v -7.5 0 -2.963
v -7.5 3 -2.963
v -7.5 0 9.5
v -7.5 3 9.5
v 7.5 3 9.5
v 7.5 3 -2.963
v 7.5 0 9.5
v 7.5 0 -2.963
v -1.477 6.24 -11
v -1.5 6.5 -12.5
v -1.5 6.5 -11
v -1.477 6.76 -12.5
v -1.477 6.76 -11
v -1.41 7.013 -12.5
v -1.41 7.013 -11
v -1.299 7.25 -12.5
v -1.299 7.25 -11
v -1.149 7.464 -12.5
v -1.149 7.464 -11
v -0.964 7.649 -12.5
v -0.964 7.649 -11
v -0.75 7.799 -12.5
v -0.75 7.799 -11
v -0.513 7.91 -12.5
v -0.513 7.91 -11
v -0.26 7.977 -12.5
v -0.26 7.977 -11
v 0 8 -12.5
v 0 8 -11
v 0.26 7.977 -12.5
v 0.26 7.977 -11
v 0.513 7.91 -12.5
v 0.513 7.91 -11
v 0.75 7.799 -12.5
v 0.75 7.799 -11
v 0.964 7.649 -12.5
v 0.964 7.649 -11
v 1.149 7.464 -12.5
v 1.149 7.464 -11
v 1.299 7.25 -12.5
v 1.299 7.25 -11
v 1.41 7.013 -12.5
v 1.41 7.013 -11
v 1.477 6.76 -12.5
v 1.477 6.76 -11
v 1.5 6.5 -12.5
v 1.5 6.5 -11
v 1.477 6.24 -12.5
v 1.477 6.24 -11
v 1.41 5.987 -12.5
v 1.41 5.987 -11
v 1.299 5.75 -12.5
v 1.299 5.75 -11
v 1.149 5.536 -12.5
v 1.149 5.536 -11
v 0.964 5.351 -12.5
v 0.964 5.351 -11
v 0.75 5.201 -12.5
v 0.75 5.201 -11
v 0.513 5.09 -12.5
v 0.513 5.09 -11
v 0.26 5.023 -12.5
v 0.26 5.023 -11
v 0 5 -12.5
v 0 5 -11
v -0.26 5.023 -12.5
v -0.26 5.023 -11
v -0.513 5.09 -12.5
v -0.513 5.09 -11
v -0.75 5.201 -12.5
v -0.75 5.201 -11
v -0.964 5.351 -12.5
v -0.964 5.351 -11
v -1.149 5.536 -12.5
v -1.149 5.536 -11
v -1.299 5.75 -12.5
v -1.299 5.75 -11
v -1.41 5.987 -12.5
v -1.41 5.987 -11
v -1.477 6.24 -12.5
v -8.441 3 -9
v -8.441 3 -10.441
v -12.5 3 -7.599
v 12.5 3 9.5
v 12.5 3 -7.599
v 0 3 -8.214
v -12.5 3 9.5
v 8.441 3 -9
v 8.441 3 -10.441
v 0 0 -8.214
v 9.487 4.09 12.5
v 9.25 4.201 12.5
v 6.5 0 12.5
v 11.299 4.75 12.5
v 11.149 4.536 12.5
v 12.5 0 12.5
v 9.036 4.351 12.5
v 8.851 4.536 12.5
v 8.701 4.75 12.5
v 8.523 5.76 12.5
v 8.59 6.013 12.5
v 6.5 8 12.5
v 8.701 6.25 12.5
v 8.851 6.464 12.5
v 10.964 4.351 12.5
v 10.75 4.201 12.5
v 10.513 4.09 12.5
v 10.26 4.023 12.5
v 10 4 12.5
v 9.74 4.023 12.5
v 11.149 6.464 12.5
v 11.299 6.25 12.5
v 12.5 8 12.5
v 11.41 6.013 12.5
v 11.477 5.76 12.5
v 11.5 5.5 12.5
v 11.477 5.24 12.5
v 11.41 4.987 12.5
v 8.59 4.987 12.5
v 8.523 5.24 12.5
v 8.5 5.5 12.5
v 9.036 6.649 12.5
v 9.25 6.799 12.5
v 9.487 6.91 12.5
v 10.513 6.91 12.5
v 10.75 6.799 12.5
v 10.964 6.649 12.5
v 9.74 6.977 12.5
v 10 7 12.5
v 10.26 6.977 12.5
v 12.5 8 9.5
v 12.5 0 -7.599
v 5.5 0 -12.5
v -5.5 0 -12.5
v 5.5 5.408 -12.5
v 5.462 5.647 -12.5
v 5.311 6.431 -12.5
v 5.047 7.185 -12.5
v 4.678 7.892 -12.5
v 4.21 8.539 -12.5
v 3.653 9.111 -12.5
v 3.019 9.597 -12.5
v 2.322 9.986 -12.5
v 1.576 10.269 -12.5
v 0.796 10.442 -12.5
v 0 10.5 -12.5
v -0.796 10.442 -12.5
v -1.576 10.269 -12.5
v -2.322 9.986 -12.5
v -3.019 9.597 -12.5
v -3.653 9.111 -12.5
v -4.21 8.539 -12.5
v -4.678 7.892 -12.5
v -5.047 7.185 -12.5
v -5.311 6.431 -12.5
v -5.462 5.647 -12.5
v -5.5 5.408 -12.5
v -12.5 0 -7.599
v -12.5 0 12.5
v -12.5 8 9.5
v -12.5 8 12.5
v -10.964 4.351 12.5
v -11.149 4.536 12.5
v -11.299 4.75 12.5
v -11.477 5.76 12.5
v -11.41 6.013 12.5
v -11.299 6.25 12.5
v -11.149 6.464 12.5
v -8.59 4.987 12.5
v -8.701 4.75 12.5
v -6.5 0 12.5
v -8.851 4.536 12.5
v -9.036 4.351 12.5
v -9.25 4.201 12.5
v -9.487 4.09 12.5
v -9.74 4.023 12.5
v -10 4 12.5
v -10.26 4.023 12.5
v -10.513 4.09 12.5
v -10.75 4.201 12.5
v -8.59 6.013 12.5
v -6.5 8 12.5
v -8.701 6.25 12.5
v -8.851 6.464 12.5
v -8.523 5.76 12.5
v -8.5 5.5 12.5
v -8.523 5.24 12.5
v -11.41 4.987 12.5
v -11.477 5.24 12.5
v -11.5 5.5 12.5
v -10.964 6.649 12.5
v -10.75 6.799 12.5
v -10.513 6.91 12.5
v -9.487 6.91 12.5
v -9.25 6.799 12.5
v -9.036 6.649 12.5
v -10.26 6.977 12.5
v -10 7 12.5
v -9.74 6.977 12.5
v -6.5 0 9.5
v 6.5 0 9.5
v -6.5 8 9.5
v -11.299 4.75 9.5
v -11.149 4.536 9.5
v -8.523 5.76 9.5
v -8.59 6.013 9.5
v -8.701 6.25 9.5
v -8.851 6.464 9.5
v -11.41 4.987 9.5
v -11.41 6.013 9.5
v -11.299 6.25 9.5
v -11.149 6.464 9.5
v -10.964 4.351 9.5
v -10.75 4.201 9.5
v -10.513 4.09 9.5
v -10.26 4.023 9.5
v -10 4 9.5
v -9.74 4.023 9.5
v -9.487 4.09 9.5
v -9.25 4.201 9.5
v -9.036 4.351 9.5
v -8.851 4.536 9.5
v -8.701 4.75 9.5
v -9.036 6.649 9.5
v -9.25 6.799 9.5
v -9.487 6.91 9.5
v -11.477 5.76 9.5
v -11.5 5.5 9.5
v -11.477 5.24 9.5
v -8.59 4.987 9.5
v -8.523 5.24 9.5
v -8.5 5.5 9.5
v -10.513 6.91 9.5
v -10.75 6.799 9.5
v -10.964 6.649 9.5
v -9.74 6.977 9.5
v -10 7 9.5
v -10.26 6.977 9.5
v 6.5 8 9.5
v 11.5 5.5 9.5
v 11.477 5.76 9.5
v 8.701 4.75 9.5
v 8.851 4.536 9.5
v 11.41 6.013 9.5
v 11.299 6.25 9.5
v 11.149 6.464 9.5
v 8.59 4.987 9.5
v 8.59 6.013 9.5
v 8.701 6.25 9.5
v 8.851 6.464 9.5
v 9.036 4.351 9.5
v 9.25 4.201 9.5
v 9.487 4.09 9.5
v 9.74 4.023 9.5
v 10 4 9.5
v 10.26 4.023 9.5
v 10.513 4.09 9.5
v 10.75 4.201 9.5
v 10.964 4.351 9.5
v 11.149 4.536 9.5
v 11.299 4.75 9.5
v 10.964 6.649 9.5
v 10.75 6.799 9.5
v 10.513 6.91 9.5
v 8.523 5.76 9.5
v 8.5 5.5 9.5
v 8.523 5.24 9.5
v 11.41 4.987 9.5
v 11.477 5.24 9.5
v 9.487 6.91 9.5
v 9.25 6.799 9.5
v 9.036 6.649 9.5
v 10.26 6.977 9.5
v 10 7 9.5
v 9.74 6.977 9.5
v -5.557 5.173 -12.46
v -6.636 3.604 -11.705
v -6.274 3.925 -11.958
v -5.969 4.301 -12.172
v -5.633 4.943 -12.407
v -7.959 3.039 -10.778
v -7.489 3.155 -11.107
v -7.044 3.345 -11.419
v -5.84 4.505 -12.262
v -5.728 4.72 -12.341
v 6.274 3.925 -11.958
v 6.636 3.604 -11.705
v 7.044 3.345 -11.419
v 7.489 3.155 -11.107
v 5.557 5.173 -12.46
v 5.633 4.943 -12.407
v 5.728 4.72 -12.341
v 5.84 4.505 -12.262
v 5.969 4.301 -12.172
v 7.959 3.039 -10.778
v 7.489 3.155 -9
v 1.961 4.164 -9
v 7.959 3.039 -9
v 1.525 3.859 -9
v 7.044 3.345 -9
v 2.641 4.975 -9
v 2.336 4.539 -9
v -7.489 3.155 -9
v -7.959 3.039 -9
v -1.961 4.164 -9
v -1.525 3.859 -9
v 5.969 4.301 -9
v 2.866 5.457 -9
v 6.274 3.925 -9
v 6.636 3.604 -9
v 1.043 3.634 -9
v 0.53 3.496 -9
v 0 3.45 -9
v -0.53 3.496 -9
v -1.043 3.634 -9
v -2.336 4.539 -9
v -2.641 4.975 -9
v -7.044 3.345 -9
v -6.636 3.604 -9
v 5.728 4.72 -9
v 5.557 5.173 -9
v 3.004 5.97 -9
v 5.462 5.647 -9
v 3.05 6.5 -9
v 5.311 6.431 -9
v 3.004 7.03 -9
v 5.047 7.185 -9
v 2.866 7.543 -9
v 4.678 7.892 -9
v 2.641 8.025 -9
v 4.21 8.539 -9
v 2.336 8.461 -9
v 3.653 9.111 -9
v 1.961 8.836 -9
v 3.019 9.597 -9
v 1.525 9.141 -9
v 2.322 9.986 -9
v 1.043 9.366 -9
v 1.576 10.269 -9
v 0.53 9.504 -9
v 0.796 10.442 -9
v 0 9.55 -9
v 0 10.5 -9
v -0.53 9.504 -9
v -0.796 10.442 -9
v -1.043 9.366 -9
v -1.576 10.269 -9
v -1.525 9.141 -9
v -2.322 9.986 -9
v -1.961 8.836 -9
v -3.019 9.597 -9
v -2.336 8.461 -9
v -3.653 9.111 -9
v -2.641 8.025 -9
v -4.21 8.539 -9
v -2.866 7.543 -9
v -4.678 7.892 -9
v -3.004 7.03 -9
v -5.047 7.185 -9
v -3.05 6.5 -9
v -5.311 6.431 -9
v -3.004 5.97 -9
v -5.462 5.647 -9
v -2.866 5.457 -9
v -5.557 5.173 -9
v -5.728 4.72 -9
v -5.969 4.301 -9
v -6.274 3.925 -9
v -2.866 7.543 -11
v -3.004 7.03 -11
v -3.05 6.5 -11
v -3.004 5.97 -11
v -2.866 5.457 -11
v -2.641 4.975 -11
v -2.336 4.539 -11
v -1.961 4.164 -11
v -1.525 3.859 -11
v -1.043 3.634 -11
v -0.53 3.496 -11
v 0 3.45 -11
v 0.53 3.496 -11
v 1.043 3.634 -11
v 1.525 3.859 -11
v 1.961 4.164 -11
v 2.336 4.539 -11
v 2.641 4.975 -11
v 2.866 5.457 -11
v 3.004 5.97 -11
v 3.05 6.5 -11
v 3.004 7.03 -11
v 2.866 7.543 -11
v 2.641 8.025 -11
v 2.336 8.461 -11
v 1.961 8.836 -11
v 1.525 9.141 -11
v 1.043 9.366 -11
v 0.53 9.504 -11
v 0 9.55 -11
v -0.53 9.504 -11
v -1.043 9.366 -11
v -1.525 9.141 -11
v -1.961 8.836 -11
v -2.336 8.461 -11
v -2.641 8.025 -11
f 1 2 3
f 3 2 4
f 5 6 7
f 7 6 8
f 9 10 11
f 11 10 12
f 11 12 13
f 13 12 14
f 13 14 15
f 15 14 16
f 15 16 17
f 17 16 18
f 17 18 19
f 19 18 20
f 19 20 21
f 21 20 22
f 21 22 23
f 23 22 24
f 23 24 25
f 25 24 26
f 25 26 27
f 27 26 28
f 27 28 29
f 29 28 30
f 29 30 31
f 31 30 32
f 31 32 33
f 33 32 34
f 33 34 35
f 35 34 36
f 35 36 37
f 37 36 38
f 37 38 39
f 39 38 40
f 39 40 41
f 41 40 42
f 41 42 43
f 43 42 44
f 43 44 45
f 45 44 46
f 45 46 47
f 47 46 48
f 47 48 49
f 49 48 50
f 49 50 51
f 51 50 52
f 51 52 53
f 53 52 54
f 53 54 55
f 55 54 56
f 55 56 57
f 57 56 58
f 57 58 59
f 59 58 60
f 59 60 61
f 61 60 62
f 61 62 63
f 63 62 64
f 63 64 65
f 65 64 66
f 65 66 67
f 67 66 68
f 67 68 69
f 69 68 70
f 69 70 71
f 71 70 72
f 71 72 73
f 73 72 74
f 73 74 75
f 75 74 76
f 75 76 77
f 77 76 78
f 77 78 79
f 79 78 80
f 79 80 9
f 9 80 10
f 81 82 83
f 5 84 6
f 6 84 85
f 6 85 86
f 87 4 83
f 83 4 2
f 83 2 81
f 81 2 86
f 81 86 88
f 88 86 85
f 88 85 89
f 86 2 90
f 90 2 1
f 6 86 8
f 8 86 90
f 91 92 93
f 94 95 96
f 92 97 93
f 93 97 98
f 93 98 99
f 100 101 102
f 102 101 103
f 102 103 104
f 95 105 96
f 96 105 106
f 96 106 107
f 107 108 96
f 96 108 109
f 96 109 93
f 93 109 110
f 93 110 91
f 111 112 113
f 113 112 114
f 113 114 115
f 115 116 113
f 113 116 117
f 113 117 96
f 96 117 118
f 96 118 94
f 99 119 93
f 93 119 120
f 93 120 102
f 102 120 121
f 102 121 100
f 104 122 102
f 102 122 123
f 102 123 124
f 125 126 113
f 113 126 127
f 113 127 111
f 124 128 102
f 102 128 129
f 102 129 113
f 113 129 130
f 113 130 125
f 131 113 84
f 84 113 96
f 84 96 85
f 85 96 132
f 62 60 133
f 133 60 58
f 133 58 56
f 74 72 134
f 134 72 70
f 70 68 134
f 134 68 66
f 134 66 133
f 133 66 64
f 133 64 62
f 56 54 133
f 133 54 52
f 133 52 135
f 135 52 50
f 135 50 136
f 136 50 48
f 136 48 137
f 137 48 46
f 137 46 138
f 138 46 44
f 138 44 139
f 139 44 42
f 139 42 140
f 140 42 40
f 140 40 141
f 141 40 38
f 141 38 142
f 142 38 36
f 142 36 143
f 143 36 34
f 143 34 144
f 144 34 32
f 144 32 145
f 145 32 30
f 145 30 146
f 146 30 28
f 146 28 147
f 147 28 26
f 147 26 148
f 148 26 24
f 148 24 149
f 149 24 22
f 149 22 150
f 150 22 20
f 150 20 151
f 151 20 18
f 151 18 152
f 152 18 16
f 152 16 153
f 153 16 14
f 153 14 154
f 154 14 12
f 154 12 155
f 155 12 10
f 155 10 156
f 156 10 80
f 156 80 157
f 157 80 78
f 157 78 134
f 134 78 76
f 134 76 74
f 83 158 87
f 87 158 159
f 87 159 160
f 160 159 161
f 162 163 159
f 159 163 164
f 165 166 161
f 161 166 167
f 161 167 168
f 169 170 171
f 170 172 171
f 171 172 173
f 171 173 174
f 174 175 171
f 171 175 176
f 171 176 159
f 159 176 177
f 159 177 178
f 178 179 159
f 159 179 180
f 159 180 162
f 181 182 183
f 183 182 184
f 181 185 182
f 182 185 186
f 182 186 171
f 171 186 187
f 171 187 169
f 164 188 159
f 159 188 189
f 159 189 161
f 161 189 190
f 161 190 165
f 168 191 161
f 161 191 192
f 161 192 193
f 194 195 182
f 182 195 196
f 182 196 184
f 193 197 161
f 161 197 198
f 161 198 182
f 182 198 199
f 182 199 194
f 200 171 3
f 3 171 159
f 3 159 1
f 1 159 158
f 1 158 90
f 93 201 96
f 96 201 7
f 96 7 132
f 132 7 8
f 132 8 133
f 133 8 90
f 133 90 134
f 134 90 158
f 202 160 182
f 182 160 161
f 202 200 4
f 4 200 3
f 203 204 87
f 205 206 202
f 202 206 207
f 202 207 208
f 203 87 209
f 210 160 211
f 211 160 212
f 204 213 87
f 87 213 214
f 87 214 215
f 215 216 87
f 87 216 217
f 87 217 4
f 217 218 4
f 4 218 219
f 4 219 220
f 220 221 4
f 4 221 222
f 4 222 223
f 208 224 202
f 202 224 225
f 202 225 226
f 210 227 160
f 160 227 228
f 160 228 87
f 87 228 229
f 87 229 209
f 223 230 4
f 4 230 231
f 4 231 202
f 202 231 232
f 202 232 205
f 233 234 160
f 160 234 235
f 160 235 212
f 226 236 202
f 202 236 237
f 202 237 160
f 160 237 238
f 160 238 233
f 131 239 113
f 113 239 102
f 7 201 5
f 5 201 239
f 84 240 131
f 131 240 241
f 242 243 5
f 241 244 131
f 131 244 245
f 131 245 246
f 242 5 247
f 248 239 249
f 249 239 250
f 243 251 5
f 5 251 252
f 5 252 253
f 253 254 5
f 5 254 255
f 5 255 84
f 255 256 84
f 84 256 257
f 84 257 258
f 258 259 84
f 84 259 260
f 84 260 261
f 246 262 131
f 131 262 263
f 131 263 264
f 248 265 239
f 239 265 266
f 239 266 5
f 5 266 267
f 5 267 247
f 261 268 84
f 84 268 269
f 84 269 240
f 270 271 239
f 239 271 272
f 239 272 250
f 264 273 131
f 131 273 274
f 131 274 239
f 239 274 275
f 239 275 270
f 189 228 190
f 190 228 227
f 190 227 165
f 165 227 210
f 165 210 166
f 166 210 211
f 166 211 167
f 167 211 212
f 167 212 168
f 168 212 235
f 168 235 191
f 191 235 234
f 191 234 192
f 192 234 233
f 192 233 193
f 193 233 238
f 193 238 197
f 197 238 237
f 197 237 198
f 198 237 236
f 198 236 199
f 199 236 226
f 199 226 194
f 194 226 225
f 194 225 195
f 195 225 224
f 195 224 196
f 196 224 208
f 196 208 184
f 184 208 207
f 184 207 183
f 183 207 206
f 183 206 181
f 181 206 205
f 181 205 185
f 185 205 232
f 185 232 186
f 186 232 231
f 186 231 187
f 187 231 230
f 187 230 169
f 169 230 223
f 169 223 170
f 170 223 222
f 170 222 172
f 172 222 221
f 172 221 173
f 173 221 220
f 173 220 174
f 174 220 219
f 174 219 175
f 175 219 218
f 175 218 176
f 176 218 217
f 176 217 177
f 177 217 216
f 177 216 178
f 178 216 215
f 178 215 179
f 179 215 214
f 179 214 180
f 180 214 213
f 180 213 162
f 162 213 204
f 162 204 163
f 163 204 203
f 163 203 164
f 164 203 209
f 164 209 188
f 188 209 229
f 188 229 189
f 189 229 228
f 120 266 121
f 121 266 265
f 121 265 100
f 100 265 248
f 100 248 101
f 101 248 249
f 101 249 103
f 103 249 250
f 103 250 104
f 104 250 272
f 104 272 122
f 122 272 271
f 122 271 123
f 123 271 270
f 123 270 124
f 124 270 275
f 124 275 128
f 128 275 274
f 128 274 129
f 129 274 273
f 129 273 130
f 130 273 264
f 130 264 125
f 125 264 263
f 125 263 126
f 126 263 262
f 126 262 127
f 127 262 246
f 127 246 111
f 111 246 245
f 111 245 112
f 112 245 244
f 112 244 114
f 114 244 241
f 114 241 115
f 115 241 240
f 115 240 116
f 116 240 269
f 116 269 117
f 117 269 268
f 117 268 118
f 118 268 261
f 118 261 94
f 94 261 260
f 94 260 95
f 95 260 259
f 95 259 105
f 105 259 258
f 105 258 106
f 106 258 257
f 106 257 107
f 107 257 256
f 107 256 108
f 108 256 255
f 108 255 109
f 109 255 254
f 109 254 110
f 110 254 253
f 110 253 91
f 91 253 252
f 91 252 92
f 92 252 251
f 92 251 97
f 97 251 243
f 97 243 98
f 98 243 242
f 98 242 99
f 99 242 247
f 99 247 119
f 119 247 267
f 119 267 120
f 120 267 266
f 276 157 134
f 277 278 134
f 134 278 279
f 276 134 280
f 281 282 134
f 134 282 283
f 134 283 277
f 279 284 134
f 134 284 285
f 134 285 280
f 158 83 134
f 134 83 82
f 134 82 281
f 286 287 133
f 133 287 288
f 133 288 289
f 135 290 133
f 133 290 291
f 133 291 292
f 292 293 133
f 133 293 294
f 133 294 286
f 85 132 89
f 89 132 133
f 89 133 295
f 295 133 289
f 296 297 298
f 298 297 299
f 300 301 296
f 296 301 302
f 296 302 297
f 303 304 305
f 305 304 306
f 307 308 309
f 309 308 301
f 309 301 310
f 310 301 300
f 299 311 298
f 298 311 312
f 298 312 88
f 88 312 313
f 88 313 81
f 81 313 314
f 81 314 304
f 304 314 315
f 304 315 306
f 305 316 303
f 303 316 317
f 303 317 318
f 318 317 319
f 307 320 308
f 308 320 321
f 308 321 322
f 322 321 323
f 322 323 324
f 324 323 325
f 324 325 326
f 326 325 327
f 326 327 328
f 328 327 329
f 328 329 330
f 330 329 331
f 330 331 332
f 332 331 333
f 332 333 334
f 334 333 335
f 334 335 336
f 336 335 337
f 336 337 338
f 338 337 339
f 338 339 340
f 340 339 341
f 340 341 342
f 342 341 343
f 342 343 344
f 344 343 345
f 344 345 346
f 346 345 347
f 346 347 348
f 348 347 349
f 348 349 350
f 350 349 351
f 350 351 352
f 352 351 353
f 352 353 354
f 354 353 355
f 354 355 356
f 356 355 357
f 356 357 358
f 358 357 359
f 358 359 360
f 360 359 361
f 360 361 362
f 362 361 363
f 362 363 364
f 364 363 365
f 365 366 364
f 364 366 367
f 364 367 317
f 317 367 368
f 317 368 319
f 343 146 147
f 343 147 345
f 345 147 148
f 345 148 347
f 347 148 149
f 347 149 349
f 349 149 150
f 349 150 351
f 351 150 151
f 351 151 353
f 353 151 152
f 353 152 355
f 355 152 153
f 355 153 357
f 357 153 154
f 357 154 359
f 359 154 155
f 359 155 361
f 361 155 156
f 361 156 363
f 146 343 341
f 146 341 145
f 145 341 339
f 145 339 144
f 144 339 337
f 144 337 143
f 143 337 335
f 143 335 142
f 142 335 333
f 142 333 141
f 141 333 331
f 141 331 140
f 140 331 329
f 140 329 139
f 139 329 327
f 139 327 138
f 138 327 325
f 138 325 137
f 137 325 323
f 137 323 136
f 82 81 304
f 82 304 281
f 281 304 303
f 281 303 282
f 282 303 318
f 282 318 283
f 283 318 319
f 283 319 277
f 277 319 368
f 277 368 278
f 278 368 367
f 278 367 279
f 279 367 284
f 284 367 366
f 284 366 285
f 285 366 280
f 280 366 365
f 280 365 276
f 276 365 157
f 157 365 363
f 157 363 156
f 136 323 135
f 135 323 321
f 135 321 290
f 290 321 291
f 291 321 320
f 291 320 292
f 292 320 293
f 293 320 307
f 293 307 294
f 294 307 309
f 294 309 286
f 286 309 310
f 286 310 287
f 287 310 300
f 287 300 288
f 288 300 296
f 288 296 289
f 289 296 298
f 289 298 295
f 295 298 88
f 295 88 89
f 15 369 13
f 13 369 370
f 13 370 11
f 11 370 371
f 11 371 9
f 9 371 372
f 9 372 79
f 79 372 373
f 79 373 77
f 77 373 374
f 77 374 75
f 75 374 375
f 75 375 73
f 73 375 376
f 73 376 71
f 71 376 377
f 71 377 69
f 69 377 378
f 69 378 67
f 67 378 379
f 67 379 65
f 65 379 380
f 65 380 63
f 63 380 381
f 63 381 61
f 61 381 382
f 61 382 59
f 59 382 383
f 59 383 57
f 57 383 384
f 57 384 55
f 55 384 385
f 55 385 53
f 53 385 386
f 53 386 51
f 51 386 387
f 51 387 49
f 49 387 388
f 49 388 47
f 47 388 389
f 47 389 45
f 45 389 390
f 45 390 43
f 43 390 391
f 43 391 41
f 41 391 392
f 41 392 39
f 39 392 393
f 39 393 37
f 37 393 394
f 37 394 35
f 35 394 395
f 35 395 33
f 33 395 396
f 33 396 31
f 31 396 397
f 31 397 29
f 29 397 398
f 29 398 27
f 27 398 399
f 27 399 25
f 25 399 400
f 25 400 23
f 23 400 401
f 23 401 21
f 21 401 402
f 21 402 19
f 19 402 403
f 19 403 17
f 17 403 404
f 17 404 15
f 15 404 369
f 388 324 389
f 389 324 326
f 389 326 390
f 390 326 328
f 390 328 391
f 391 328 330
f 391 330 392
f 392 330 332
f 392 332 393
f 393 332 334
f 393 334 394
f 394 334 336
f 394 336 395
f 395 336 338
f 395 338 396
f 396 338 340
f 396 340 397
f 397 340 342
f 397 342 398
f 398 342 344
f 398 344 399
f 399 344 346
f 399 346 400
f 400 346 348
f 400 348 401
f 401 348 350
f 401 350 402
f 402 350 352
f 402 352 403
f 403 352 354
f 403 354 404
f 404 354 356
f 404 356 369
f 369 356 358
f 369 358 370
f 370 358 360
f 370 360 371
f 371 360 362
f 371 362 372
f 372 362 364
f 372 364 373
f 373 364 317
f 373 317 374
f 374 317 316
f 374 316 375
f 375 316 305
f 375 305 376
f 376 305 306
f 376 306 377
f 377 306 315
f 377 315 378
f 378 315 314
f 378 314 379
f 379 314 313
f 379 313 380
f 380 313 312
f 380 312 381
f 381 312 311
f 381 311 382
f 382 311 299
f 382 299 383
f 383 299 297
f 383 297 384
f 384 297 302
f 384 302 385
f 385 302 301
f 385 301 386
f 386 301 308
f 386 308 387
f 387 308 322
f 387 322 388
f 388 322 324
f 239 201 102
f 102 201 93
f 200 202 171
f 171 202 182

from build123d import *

# Parameters (mm, degrees)
BOSS_EXTRUDE1_DEPTH = 3
SKETCH2_W           = 5
SKETCH2_H           = 5
BOSS_EXTRUDE2_DEPTH = 3
SKETCH3_W           = 5
SKETCH3_H           = 5
BOSS_EXTRUDE4_DEPTH = 3
SKETCH4_R           = 1.5
CUT_EXTRUDE1_DEPTH  = 27.537709019
CHAMFER1_SIZE       = 7
CHAMFER1_SIZE2      = 4.901452767
CHAMFER2_SIZE       = 7
CHAMFER2_SIZE2      = 4.901452767
SKETCH6_W           = 11
SKETCH6_H           = 3.5
BOSS_EXTRUDE5_DEPTH = 4.5
SKETCH9_W           = 11
SKETCH9_H           = 3.5
BOSS_EXTRUDE6_DEPTH = 3
FILLET1_R           = 5.5
FILLET2_R           = 3
SKETCH16_R          = 1.5
CUT_EXTRUDE7_DEPTH  = 30.857997254
SKETCH17_R          = 3.05
CUT_EXTRUDE8_DEPTH  = 2
SKETCH18_W          = 3
SKETCH18_H          = 8
BOSS_EXTRUDE7_DEPTH = 1
SKETCH19_W          = 3
SKETCH19_H          = 8
BOSS_EXTRUDE8_DEPTH = 1


# Some blends are built 0.0001 mm under size
with BuildPart() as part:
    # Sketch1 → Boss-Extrude1 (new body)
    with BuildSketch(Plane(origin=(0, 0, 0), x_dir=(1, 0, 0), z_dir=(0, 1, 0))):
        Polygon((-7.5, -12.5), (-7.5, 2.962729178), (0, 8.214285714), (7.5, 2.962729178), (7.5, -12.5), (12.5, -12.5), (12.5, 12.5), (-12.5, 12.5), (-12.5, -12.5), align=None)
    extrude(amount=BOSS_EXTRUDE1_DEPTH)

    # Sketch2 → Boss-Extrude2 (add)
    with BuildSketch(Plane.XY.offset(12.5)):
        with Locations((-10, 5.5)):
            Rectangle(SKETCH2_W, SKETCH2_H)
    extrude(amount=-BOSS_EXTRUDE2_DEPTH)

    # Sketch3 → Boss-Extrude4 (add)
    with BuildSketch(Plane.XY.offset(12.5)):
        with Locations((10, 5.5)):
            Rectangle(SKETCH3_W, SKETCH3_H)
    extrude(amount=-BOSS_EXTRUDE4_DEPTH)

    # Sketch4 → Cut-Extrude1 (cut, through all)
    with BuildSketch(Plane(origin=(0, 0, 9.5), x_dir=(-1, 0, 0), z_dir=(0, 0, -1))):
        with Locations((10, 5.5)):
            Circle(SKETCH4_R)
        with Locations(Location((-10, 5.5, 0), (0, 0, 180))):
            Circle(SKETCH4_R)
    extrude(amount=-CUT_EXTRUDE1_DEPTH, mode=Mode.SUBTRACT)

    # Chamfer1
    chamfer1_edges = [part.edges().sort_by_distance(p)[0] for p in [
        (-12.5, 1.5, -12.5),
    ]]
    chamfer1_side = [part.faces().sort_by_distance(p)[0] for p in [
        (0, 1.5, -12.5),
    ]]
    chamfer(chamfer1_edges, length=CHAMFER1_SIZE, length2=CHAMFER1_SIZE2, reference=chamfer1_side[0])

    # Chamfer2
    chamfer2_edges = [part.edges().sort_by_distance(p)[0] for p in [
        (12.5, 1.5, -12.5),
    ]]
    chamfer2_side = [part.faces().sort_by_distance(p)[0] for p in [
        (3.5, 1.5, -12.5),
    ]]
    chamfer(chamfer2_edges, length=CHAMFER2_SIZE, length2=CHAMFER2_SIZE2, reference=chamfer2_side[0])

    # Sketch6 → Boss-Extrude5 (add)
    with BuildSketch(Plane(origin=(0, 3, 0), x_dir=(1, 0, 0), z_dir=(0, 1, 0))):
        with Locations((0, 10.75)):
            Rectangle(SKETCH6_W, SKETCH6_H)
    extrude(amount=BOSS_EXTRUDE5_DEPTH)

    # Sketch9 → Boss-Extrude6 (add)
    with BuildSketch(Plane(origin=(0, 7.5, 0), x_dir=(1, 0, 0), z_dir=(0, 1, 0))):
        with Locations((0, 10.75)):
            Rectangle(SKETCH9_W, SKETCH9_H)
    extrude(amount=BOSS_EXTRUDE6_DEPTH)

    # Fillet1
    fillet1_edges = [part.edges().sort_by_distance(p)[0] for p in [
        (5.5, 10.5, -10.75),
        (-5.5, 10.5, -10.75),
    ]]
    fillet(fillet1_edges, radius=FILLET1_R - 0.0001)  # a hair under: the kernel refuses the full size

    # Fillet2
    # the kernel refuses this fillet: 3 mm, written as the material it adds along each edge
    with BuildSketch(Plane(origin=(-5.5, 3, -9), x_dir=(-1, 0, 0), z_dir=(0, 0, -1))) as fillet2_piece_1_section:
        with BuildLine():
            CenterArc((2.940982655, 3), FILLET2_R, 186.755728099, 83.244271901)
            Line((-0.038187449, 2.647089966), (-0.336104459, 2.611798962))
            ThreePointArc((-0.336104459, 2.611798962), (-0.3, 2.0001), (-0.3, 0))
            Line((-0.3, 0), (0, -0.3))
            Line((0, -0.3), (2.940982655, -0.3))
            Line((2.940982655, -0.3), (2.940982655, 0))
        make_face()
    fillet2_piece_1 = extrude(amount=3.5, mode=Mode.PRIVATE)
    fillet2_piece_1 = split(fillet2_piece_1, bisect_by=Plane(origin=(-8.304245999, 3.032166693, -10.536445813), z_dir=(0.5735764363510474, 0, 0.8191520442889909)), keep=Keep.TOP, mode=Mode.PRIVATE)
    add(fillet2_piece_1)
    with BuildSketch(Plane(origin=(5.5, 3, -12.5), x_dir=(-0.014424698824614252, 0.9998959586196051, 0), z_dir=(0, 0, 1))) as fillet2_piece_2_section:
        with BuildLine():
            CenterArc((2.957265087, -2.983950768), FILLET2_R, 95.929225072, 83.244271901)
            Line((-0.042422789, -2.940676671), (-0.342391577, -2.936349262))
            Line((-0.342391577, -2.936349262), (-0.299968788, 0.00432741))
            Line((-0.299968788, 0.00432741), (0.00432741, 0.299968788))
            ThreePointArc((0.00432741, 0.299968788), (2.004219316, 0.271117947), (2.616375433, 0.298395077))
            Line((2.616375433, 0.298395077), (2.647365401, 0))
        make_face()
    fillet2_piece_2 = extrude(amount=3.5, mode=Mode.PRIVATE)
    fillet2_piece_2 = split(fillet2_piece_2, bisect_by=Plane(origin=(6.733396297, 4.098580715, -11.636366615), z_dir=(-0.5735764363510474, 0, 0.8191520442889909)), keep=Keep.TOP, mode=Mode.PRIVATE)
    add(fillet2_piece_2)

    # Sketch16 → Cut-Extrude7 (cut, through all)
    with BuildSketch(Plane(origin=(0, 0, -12.5), x_dir=(-1, 0, 0), z_dir=(0, 0, -1))):
        with Locations((0, 6.5)):
            Circle(SKETCH16_R)
    extrude(amount=-CUT_EXTRUDE7_DEPTH, mode=Mode.SUBTRACT)

    # Sketch17 → Cut-Extrude8 (cut)
    with BuildSketch(Plane.XY.offset(-9)):
        with Locations((0, 6.5)):
            Circle(SKETCH17_R)
    extrude(amount=-CUT_EXTRUDE8_DEPTH, mode=Mode.SUBTRACT)

    # Sketch18 → Boss-Extrude7 (add)
    with BuildSketch(Plane.ZY.offset(-7.5)):
        with Locations((11, 4)):
            Rectangle(SKETCH18_W, SKETCH18_H)
    extrude(amount=BOSS_EXTRUDE7_DEPTH)

    # Sketch19 → Boss-Extrude8 (add)
    with BuildSketch(Plane(origin=(-7.5, 0, 0), x_dir=(0, 0, -1), z_dir=(1, 0, 0))):
        with Locations((-11, 4)):
            Rectangle(SKETCH19_W, SKETCH19_H)
    extrude(amount=BOSS_EXTRUDE8_DEPTH)


solid = part.part
